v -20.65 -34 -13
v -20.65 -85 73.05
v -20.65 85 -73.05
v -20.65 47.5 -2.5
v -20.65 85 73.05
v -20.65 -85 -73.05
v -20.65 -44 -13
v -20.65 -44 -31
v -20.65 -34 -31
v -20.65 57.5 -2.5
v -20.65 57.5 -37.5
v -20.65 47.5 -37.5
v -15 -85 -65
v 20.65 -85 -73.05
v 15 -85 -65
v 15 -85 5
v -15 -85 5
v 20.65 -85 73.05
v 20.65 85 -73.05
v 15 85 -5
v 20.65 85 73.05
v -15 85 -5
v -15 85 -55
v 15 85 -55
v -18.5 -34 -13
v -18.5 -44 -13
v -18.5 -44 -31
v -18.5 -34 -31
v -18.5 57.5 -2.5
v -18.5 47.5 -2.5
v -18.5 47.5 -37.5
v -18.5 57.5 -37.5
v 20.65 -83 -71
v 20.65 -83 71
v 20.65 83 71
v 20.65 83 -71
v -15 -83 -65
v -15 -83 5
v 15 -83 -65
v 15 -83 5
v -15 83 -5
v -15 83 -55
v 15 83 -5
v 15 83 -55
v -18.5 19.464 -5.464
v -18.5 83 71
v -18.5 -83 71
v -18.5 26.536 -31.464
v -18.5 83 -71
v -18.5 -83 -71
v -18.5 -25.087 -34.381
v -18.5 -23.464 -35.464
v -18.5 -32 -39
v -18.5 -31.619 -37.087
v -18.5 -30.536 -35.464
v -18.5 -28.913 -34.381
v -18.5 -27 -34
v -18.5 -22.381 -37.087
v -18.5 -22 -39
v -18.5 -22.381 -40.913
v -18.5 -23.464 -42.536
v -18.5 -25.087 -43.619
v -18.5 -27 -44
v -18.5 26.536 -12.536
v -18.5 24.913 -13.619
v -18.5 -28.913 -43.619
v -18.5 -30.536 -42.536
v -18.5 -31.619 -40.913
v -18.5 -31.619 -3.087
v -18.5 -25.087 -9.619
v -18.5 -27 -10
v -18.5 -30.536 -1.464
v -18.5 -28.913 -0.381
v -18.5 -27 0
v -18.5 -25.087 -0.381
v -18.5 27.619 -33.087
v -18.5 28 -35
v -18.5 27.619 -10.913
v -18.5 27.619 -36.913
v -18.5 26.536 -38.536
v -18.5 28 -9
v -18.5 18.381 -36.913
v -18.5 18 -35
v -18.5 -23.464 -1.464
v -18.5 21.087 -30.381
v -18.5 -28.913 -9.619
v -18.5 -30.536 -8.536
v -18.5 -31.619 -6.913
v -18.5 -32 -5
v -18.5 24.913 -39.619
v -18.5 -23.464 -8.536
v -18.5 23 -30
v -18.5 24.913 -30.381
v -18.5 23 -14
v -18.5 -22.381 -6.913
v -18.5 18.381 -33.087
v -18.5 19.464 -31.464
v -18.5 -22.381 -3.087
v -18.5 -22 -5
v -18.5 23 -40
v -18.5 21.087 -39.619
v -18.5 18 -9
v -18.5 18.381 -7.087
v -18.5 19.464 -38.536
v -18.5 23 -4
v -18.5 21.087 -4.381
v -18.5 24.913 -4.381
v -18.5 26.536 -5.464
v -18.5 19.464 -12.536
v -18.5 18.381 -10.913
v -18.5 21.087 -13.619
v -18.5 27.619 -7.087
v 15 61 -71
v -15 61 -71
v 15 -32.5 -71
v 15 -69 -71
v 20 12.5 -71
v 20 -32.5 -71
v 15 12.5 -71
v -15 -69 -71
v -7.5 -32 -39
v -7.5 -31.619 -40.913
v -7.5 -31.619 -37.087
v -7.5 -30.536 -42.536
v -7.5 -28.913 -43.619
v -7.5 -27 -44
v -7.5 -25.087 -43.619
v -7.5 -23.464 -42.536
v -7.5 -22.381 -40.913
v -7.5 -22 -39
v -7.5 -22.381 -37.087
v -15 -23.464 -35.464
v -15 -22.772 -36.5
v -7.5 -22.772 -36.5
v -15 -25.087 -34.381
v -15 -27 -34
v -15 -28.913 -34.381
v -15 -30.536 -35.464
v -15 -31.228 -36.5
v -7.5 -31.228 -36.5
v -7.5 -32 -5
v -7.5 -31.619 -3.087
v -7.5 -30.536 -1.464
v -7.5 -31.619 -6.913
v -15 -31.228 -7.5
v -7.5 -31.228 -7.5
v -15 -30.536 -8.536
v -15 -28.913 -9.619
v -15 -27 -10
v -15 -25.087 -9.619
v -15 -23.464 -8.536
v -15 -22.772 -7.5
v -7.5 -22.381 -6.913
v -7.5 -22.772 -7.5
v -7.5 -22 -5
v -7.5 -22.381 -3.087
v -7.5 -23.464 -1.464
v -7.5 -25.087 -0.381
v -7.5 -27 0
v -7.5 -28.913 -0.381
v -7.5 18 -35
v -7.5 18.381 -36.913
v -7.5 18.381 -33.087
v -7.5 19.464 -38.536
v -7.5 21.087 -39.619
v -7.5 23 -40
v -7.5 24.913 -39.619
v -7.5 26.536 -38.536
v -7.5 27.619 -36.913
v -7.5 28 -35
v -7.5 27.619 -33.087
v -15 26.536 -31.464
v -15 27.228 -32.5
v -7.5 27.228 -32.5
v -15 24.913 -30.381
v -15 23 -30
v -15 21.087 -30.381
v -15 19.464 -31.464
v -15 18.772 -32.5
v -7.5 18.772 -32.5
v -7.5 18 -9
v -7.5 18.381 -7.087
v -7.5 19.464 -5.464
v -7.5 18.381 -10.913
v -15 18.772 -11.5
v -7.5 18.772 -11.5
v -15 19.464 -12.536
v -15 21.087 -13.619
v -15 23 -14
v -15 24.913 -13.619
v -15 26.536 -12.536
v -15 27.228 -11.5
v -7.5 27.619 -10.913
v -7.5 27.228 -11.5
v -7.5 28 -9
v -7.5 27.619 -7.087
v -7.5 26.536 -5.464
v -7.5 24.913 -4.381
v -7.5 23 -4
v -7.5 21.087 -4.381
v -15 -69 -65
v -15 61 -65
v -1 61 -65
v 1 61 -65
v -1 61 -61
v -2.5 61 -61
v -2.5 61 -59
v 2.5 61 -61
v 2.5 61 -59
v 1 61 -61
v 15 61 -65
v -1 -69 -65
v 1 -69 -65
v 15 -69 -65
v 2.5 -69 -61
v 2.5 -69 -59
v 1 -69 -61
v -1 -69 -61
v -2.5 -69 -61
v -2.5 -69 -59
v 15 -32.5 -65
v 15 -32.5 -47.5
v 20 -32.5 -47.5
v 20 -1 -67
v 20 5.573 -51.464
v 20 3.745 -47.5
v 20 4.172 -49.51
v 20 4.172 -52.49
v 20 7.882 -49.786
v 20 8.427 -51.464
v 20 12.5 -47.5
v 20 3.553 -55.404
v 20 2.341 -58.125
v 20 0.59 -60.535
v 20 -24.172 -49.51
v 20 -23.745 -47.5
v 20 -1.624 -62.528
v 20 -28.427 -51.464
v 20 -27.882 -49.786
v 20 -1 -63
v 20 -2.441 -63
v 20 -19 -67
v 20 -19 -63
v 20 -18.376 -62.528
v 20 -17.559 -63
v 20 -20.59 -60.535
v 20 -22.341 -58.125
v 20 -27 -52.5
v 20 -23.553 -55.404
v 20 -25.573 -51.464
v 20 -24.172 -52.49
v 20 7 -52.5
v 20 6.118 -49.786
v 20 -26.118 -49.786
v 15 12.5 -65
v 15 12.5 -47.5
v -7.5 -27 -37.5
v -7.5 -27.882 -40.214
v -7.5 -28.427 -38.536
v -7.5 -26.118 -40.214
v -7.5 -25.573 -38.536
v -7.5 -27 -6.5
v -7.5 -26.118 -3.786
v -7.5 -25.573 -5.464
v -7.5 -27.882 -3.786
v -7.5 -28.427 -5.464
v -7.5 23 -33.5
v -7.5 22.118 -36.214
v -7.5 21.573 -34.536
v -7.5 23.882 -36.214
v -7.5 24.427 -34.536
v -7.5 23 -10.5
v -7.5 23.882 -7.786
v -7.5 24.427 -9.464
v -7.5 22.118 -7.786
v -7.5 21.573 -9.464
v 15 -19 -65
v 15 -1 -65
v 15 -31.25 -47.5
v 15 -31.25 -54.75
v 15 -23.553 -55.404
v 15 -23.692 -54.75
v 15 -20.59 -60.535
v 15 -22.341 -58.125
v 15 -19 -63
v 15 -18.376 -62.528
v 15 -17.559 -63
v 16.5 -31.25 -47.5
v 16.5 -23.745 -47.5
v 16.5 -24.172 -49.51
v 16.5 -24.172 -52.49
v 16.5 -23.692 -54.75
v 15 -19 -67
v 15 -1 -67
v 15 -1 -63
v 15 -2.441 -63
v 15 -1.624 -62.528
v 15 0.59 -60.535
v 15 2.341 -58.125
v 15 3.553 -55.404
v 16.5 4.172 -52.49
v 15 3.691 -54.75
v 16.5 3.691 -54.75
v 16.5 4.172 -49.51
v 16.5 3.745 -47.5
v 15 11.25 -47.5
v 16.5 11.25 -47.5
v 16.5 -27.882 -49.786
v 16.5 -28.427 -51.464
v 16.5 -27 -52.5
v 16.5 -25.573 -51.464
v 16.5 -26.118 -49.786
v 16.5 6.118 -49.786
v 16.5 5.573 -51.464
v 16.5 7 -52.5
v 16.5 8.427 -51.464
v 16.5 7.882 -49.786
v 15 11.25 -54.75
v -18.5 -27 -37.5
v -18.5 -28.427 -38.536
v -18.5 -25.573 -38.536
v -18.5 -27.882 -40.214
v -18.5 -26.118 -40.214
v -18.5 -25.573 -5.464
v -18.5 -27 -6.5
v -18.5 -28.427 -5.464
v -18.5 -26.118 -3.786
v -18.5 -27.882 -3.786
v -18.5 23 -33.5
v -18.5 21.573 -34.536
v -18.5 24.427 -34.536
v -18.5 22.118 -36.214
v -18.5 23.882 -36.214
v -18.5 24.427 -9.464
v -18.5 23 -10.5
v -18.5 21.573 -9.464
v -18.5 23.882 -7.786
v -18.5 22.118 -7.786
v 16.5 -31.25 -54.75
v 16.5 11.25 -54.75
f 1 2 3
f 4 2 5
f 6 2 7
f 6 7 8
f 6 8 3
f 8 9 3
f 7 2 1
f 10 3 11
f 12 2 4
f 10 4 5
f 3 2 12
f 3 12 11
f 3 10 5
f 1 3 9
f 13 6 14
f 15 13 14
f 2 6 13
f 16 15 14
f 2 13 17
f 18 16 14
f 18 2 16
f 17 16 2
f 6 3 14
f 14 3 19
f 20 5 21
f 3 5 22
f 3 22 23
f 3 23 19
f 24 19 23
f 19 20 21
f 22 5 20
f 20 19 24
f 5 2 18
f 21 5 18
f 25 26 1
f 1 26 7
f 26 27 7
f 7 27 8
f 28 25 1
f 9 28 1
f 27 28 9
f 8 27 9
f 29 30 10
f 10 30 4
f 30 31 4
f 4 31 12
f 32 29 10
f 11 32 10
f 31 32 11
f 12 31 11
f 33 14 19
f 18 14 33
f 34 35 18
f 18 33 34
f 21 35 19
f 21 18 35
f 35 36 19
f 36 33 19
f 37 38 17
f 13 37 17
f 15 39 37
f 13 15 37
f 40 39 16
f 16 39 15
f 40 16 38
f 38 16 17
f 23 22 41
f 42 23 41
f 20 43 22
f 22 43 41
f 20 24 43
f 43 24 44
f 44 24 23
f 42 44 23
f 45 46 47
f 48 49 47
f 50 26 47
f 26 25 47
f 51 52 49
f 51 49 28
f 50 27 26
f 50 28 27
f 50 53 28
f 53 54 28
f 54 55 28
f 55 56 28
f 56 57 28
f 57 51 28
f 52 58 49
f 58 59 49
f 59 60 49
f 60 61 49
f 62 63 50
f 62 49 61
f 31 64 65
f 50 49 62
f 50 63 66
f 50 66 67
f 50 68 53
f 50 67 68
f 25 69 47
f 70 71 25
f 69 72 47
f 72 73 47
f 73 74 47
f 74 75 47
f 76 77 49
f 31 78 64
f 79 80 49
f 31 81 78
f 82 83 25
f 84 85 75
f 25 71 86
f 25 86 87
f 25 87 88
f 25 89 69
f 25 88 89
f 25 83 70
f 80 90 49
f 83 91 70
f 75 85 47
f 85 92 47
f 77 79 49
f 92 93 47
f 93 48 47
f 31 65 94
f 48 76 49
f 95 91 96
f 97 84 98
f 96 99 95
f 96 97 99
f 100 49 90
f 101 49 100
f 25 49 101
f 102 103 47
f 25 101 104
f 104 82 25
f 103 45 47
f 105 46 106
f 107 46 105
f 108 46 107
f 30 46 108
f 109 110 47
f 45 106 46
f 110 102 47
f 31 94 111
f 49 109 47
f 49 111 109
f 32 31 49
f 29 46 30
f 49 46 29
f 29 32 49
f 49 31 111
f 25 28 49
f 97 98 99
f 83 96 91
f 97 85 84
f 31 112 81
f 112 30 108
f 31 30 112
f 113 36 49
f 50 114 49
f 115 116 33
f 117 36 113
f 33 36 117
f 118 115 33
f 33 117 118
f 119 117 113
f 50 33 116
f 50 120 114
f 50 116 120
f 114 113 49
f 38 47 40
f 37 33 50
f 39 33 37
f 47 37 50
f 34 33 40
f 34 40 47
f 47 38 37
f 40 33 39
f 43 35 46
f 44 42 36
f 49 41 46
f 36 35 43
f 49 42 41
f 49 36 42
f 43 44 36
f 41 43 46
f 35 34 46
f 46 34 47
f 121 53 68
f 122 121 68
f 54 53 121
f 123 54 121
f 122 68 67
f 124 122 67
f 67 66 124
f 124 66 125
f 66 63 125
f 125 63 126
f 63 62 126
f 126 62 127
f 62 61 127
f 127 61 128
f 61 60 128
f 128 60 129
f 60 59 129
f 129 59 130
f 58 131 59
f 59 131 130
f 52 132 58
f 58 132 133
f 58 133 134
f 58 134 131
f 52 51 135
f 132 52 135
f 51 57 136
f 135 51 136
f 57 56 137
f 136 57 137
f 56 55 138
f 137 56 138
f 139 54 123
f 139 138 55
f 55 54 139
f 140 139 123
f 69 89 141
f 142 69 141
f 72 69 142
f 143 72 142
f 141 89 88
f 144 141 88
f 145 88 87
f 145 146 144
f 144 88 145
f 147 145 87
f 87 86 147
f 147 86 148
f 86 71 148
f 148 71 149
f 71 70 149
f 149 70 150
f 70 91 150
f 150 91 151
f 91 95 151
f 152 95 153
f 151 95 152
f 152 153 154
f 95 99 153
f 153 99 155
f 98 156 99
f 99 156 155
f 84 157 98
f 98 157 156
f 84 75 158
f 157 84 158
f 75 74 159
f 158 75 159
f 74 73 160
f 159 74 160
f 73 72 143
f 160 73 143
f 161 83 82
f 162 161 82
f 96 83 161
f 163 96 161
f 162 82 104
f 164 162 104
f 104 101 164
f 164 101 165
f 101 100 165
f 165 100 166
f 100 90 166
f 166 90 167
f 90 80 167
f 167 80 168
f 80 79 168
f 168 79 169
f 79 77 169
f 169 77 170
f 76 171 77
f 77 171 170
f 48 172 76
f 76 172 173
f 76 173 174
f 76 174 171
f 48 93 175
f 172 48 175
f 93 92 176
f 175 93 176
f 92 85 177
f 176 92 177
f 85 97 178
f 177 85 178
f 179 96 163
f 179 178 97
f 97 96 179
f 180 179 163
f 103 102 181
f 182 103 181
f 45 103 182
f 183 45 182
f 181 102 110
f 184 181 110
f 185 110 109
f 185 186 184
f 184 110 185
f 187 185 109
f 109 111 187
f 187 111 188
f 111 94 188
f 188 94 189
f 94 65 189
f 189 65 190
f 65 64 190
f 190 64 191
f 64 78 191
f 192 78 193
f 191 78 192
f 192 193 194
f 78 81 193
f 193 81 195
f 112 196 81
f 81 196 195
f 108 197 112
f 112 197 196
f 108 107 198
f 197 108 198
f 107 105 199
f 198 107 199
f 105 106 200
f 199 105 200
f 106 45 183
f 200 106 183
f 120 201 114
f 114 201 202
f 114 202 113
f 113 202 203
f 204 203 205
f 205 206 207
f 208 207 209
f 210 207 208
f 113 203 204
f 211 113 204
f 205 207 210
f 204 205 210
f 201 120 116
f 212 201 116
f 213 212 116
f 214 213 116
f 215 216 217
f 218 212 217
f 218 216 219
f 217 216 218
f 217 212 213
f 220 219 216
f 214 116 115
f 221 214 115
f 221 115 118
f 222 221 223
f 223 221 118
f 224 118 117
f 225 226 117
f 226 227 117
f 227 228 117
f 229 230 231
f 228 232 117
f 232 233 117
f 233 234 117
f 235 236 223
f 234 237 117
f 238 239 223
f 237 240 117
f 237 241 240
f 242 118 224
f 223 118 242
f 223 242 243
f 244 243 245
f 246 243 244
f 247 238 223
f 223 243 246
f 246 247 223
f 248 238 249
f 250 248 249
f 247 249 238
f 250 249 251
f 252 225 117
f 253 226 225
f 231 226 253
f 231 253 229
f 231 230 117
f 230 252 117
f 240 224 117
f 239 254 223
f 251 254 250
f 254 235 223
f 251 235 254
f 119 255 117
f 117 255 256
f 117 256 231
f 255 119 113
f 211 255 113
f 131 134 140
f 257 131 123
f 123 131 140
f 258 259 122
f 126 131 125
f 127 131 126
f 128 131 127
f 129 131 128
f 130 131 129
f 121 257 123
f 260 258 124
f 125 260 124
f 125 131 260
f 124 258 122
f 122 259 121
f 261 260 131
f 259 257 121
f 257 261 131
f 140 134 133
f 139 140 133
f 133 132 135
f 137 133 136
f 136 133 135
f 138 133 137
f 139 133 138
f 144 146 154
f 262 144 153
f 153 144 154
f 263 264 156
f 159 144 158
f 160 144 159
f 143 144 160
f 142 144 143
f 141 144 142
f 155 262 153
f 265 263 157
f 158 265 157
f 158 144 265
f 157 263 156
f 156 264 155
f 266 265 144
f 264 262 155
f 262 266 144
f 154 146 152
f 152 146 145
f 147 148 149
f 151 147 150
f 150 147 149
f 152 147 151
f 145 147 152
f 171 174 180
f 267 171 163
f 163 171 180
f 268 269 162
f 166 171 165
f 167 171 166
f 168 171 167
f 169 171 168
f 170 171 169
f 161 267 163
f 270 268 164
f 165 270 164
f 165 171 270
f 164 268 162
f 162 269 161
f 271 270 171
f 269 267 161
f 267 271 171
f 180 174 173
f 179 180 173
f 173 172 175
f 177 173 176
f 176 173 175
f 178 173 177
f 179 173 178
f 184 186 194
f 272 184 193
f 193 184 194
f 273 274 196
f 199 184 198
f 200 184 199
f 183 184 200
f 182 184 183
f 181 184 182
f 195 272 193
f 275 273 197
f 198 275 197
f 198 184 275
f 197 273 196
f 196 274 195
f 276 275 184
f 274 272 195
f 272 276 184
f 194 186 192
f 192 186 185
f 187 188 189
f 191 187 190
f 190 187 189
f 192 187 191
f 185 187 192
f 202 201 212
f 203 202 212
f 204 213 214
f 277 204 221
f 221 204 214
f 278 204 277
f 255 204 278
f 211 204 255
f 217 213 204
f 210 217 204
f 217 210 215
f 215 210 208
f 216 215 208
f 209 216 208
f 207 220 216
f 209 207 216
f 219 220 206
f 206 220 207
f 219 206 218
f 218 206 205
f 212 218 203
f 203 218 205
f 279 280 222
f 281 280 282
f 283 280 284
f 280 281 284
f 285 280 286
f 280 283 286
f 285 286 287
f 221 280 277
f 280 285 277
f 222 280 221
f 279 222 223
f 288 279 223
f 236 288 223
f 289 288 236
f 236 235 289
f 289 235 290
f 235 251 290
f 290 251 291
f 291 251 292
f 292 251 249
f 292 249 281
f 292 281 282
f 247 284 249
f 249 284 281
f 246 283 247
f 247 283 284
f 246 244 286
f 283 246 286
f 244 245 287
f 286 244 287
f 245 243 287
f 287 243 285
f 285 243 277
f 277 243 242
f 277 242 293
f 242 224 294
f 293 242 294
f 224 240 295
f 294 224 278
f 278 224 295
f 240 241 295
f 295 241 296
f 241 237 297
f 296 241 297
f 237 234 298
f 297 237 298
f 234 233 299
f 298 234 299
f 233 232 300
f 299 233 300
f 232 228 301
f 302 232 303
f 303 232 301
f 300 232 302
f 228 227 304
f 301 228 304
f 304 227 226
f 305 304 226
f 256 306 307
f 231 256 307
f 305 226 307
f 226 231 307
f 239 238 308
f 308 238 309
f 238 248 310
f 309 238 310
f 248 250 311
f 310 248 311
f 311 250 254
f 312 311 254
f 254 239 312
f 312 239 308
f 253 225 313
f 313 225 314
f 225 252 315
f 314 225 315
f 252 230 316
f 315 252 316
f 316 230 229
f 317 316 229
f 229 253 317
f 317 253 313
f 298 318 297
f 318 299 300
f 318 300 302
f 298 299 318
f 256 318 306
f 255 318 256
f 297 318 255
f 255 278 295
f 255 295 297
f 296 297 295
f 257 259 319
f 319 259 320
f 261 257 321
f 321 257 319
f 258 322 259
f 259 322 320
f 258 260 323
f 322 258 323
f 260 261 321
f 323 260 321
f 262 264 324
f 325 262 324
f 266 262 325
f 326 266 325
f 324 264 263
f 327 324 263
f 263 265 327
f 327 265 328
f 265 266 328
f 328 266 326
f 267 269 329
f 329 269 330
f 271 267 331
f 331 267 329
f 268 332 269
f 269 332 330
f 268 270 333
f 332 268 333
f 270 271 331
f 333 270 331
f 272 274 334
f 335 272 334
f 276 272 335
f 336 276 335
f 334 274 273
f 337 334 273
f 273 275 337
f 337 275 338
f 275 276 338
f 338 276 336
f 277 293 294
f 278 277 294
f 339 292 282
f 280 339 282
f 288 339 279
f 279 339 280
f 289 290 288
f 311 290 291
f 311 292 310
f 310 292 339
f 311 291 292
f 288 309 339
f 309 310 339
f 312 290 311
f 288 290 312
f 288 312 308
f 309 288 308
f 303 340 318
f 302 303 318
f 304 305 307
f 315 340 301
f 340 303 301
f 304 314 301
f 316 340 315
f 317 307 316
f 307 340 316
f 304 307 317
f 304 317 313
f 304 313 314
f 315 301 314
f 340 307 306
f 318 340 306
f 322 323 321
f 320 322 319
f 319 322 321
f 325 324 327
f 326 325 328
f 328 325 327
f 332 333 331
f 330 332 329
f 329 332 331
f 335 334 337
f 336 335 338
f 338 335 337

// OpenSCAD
module mainBox(){
	union(){
	difference(){
		//mainBox
		color([0.2,0.8,0.2]) cube(size=[41.3,170,146.1,],center=true);
		//hollowBox
		translate([6,0,0]) color([0.2,0.2,0.2])cube(size=[49,166,142],center=true);
		//frontDoorHole
		translate([0,-85,-30]) cube(size=[30,7,70],center=true);
		//flangeHoles
		translate([-20,52.5,-20]) cube(size=[5,10,35],center=true);
		translate([-20,-39,-22]) cube(size=[5,10,18],center=true);
		//objectiveMountScrewBodyHole
		translate([0,82,-30]) cube(size=[30,10,50],center=true);
	}
	//wallMounts
	translate([-14,23,-9]) wallMount();
	translate([-14,-27,-5]) wallMount();
	translate([-14,23,-35])  rotate([180,0,0]) wallMount();
	translate([-14,-27,-39]) rotate([180,0,0]) wallMount();
	}
}

module trayGuide(){
	//trayGuide	
	union(){
		color([0.5,0.25,0.75]) translate([0,-4,-68]) cube(size=[30,130,6],center=true);
		translate([0,-4,-62.75]) cube(size=[2,130,5],center=true);
		translate([0,-4,-60]) cube(size=[5,130,2],center=true);
	}
}

module motorMount(){
	difference(){
		translate([17.5,-10,-60]) cube(size=[5,45,25],center=true);
		translate([17.5,-10,-51]) rotate([0,90,0]) cylinder(r=14.25,h=12,center=true);
		translate([15,-10,-50]) cube(size=[3,42.5,9.5],center=true);
		translate([15,-27,-51]) rotate([0,90,0]) cylinder(r=1.5,h=12,center=true);
		translate([15,7,-51]) rotate([0,90,0]) cylinder(r=1.5,h=12,center=true);
		translate([20,-10,-65]) 	cube(size=[11,18,4],center=true);
	}
}

module wallMount(){
	difference(){
		rotate([0,90,180]) screwHoleOuter();
		rotate([0,90,180]) screwHoleInner2();
		translate([4,0,-4]) cube(size=[10,10,3],center=true);
//		translate([-7,0,0]) cube(size=[5,10,10],center=true);
	}
}

module screwHoleOuter(){
	cylinder(r=5,h=13,center=true);
}

module screwHoleInner2(){
	translate([0,0,5]) cylinder(r=1.5,h=25,center=true);
}

union(){
	mainBox();
	trayGuide();
	motorMount();
}
